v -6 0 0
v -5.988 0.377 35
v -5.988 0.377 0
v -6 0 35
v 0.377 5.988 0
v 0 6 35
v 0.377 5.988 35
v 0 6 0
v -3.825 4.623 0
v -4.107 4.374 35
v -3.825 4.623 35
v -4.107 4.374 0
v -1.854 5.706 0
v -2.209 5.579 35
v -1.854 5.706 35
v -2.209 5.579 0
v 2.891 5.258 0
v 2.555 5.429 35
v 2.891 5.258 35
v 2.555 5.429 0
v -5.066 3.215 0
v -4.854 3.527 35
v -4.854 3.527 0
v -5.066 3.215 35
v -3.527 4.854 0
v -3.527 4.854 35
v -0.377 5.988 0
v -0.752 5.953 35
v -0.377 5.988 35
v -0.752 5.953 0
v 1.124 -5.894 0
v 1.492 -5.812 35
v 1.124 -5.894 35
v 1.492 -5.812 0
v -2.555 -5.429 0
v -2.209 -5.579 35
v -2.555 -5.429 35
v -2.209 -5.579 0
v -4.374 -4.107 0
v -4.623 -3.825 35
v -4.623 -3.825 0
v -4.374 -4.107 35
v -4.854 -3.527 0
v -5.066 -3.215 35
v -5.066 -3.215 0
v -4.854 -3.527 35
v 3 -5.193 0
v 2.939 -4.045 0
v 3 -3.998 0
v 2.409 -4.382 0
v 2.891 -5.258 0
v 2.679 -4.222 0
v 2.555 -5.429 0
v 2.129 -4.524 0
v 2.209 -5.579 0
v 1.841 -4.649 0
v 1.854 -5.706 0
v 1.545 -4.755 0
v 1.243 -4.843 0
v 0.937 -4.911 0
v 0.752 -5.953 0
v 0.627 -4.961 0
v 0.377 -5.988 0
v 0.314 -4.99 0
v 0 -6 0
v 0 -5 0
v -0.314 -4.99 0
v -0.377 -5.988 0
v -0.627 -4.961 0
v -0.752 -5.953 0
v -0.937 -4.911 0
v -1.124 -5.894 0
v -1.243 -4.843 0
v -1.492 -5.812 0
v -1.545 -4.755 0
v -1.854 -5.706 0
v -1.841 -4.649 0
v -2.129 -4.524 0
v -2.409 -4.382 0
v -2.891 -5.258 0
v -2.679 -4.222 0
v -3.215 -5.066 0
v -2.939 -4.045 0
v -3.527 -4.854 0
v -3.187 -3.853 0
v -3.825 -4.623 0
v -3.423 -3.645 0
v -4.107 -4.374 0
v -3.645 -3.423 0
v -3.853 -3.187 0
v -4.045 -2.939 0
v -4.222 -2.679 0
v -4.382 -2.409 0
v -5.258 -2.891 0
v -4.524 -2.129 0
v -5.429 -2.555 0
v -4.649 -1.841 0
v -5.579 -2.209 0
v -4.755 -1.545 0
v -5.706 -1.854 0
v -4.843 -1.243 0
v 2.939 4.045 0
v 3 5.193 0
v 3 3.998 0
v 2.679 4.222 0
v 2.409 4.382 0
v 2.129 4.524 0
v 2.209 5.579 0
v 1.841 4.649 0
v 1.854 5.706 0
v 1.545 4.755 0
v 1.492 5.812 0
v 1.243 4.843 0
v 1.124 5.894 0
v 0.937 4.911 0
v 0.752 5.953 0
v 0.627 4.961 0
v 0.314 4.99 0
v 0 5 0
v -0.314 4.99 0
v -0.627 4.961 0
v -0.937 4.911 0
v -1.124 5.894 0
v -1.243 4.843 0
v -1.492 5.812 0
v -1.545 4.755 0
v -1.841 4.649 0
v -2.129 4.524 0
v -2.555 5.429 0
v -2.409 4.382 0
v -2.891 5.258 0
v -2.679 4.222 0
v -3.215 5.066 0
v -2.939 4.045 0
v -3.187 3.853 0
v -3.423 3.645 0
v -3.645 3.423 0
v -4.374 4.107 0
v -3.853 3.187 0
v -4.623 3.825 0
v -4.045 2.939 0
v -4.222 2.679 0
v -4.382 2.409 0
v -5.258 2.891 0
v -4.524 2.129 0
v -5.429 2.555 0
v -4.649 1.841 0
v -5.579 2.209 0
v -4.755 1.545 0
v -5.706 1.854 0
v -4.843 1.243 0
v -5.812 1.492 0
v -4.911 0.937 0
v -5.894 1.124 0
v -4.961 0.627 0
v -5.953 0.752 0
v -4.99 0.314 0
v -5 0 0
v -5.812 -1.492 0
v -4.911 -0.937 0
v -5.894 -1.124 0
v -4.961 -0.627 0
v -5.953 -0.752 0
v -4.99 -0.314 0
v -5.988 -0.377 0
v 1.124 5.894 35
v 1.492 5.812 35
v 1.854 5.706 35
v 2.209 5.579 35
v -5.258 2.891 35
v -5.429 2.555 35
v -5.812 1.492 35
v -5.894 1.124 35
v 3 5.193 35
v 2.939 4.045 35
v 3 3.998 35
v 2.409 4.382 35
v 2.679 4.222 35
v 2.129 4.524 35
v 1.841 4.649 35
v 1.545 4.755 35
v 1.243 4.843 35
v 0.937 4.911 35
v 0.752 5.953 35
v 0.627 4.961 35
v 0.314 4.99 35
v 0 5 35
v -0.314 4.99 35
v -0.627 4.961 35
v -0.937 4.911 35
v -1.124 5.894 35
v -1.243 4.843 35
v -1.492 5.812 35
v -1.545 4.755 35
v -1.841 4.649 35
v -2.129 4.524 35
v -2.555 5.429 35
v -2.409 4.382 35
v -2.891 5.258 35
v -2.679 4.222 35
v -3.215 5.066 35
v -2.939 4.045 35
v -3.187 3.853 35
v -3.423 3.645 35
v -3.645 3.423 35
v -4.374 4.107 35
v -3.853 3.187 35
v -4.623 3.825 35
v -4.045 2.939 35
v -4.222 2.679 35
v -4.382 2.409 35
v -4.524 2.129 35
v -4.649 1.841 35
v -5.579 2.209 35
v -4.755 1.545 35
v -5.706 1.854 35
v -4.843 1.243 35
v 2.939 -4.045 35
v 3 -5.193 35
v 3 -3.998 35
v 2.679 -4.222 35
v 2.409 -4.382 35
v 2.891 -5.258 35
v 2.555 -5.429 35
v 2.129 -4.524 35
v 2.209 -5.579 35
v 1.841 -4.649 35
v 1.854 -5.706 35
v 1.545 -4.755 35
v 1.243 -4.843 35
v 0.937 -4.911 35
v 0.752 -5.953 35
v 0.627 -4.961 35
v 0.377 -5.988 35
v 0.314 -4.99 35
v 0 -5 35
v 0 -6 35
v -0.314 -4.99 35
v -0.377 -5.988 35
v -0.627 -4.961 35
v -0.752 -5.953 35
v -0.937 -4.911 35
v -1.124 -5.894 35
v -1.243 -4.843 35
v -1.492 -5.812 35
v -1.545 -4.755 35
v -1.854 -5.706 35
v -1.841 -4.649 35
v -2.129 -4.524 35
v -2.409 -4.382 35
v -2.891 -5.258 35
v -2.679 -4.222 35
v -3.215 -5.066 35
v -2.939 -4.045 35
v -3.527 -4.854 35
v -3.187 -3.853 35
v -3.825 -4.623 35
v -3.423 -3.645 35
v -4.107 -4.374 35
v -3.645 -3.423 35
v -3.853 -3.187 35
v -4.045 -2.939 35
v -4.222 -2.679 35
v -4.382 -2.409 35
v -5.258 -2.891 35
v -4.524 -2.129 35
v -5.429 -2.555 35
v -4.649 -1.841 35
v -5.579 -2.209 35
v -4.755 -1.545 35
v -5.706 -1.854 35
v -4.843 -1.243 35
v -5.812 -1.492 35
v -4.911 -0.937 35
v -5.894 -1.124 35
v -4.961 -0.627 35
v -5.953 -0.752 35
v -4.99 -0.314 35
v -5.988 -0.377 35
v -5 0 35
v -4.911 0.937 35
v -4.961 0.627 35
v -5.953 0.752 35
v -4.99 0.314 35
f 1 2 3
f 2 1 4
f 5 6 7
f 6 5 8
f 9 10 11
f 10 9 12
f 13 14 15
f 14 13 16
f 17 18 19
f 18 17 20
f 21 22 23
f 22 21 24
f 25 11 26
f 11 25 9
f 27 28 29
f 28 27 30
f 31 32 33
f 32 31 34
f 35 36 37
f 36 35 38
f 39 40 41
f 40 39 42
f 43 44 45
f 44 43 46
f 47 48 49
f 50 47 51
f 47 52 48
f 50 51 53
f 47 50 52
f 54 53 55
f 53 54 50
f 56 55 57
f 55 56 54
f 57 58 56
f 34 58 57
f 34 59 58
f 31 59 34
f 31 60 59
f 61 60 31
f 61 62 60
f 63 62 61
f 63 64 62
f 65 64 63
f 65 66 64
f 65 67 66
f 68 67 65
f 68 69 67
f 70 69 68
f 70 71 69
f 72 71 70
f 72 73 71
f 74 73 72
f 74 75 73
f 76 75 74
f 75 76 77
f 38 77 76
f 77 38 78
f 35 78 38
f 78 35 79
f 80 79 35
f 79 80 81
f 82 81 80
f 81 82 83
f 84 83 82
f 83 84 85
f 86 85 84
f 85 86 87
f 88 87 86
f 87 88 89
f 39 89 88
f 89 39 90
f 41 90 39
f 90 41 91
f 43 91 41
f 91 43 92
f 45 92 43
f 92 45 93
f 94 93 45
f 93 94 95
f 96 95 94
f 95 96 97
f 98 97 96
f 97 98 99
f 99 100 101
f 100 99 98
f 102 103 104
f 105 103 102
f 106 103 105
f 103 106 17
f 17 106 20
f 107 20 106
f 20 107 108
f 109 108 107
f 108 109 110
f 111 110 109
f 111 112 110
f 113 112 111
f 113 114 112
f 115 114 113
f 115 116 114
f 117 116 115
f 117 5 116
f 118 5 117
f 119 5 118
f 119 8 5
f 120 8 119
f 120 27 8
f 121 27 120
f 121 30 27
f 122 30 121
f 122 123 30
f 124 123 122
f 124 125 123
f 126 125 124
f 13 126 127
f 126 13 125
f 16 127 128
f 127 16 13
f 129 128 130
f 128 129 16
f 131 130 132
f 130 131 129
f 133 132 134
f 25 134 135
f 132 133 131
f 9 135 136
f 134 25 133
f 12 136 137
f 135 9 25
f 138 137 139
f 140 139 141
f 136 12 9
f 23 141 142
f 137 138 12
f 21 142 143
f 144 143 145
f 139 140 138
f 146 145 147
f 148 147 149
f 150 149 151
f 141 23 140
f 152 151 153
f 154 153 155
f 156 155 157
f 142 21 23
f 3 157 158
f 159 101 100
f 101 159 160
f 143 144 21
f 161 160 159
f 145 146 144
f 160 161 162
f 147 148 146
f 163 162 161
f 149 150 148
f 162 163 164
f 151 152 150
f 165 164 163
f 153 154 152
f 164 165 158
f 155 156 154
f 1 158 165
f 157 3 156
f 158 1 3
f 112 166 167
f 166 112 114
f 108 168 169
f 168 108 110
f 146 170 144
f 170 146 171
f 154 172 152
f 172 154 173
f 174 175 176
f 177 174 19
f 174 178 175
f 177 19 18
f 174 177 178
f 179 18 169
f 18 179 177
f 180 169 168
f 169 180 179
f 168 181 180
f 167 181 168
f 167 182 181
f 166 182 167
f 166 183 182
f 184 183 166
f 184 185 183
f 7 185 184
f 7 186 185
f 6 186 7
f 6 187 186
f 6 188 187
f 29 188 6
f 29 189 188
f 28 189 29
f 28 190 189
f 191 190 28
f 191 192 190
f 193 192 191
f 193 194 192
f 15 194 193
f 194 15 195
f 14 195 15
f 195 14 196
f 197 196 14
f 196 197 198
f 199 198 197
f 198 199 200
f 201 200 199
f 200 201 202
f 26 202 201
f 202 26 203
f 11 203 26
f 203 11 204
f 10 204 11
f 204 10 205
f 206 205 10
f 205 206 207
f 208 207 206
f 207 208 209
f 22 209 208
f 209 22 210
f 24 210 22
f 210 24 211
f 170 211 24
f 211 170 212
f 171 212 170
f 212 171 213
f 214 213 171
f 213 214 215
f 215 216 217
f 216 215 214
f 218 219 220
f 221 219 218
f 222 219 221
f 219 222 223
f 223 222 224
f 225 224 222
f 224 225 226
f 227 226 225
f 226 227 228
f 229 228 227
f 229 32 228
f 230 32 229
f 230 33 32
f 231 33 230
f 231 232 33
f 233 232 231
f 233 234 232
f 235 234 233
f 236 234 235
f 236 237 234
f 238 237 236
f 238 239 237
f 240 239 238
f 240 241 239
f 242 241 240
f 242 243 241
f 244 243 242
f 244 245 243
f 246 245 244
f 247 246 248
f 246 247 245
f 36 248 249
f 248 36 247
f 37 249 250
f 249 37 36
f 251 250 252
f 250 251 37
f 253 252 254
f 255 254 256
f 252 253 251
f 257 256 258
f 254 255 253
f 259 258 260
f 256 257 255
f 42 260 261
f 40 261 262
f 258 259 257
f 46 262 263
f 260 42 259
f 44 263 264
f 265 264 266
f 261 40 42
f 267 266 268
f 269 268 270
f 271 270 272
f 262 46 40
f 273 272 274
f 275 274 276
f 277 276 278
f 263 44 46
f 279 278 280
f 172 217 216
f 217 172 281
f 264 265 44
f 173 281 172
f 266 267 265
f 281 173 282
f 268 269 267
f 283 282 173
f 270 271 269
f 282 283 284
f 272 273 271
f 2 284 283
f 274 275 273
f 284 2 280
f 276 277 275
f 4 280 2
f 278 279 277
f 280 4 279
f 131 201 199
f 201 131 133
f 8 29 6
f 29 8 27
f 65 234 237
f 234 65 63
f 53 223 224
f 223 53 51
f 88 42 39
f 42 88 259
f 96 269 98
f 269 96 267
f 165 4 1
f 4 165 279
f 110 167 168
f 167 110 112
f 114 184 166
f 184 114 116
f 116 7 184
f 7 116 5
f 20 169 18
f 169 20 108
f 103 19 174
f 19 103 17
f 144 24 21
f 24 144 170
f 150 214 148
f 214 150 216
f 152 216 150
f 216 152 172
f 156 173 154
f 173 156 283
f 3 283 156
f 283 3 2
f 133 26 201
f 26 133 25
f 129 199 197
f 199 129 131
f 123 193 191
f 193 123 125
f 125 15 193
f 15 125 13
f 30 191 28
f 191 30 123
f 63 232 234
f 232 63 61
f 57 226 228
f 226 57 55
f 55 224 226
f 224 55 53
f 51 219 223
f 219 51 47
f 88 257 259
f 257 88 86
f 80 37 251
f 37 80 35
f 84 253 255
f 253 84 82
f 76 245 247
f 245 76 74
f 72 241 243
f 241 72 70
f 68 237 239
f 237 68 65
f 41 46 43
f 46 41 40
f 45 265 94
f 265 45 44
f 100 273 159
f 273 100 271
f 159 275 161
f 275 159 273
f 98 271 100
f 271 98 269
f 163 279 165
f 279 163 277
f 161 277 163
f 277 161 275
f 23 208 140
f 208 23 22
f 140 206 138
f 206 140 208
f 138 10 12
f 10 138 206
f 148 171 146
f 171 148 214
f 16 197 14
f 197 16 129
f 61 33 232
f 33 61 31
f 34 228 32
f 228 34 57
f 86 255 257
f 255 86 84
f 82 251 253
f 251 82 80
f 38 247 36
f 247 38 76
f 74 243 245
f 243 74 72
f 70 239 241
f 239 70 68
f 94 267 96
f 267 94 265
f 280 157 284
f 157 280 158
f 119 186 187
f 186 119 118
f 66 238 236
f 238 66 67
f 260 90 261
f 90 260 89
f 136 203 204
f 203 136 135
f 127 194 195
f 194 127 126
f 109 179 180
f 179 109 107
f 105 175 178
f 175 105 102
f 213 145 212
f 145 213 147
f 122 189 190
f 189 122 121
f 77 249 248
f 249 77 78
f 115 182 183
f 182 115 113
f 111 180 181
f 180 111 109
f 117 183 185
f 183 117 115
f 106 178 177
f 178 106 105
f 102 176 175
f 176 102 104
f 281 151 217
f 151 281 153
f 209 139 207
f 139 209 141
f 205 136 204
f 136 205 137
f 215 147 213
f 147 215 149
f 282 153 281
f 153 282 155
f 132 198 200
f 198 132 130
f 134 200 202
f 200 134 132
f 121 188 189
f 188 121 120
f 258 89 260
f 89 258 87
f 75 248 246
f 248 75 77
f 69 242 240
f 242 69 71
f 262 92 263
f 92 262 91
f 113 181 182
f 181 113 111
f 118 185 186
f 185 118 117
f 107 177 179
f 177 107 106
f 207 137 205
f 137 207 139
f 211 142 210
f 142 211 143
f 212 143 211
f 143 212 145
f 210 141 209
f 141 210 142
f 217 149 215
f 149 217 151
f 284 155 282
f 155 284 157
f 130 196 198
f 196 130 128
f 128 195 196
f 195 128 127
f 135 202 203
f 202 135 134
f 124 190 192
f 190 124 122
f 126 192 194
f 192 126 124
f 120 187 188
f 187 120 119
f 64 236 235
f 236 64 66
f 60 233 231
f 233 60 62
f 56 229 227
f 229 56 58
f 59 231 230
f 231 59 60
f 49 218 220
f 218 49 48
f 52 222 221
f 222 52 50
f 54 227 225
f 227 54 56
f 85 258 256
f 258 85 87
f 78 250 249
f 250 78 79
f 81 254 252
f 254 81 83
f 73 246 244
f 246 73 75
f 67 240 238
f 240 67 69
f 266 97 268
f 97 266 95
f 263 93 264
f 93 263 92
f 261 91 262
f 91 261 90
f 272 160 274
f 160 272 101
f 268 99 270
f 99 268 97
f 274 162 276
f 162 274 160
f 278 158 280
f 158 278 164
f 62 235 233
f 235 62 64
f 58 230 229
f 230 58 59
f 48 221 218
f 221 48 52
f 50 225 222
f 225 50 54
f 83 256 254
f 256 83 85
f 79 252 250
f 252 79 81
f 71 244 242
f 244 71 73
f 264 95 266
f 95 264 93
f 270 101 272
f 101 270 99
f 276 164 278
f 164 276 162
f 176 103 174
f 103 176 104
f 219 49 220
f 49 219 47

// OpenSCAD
height = 35;
outer_diam = 12 / 2;
inner_diam = 10 / 2;

$fn = 100;

difference()
{
    cylinder(h = height, r = outer_diam);
    cylinder(h = height, r = inner_diam);
    translate([3, -outer_diam, 0])
    {
        cube(size = [outer_diam, 2*outer_diam, height]);
    }
}
